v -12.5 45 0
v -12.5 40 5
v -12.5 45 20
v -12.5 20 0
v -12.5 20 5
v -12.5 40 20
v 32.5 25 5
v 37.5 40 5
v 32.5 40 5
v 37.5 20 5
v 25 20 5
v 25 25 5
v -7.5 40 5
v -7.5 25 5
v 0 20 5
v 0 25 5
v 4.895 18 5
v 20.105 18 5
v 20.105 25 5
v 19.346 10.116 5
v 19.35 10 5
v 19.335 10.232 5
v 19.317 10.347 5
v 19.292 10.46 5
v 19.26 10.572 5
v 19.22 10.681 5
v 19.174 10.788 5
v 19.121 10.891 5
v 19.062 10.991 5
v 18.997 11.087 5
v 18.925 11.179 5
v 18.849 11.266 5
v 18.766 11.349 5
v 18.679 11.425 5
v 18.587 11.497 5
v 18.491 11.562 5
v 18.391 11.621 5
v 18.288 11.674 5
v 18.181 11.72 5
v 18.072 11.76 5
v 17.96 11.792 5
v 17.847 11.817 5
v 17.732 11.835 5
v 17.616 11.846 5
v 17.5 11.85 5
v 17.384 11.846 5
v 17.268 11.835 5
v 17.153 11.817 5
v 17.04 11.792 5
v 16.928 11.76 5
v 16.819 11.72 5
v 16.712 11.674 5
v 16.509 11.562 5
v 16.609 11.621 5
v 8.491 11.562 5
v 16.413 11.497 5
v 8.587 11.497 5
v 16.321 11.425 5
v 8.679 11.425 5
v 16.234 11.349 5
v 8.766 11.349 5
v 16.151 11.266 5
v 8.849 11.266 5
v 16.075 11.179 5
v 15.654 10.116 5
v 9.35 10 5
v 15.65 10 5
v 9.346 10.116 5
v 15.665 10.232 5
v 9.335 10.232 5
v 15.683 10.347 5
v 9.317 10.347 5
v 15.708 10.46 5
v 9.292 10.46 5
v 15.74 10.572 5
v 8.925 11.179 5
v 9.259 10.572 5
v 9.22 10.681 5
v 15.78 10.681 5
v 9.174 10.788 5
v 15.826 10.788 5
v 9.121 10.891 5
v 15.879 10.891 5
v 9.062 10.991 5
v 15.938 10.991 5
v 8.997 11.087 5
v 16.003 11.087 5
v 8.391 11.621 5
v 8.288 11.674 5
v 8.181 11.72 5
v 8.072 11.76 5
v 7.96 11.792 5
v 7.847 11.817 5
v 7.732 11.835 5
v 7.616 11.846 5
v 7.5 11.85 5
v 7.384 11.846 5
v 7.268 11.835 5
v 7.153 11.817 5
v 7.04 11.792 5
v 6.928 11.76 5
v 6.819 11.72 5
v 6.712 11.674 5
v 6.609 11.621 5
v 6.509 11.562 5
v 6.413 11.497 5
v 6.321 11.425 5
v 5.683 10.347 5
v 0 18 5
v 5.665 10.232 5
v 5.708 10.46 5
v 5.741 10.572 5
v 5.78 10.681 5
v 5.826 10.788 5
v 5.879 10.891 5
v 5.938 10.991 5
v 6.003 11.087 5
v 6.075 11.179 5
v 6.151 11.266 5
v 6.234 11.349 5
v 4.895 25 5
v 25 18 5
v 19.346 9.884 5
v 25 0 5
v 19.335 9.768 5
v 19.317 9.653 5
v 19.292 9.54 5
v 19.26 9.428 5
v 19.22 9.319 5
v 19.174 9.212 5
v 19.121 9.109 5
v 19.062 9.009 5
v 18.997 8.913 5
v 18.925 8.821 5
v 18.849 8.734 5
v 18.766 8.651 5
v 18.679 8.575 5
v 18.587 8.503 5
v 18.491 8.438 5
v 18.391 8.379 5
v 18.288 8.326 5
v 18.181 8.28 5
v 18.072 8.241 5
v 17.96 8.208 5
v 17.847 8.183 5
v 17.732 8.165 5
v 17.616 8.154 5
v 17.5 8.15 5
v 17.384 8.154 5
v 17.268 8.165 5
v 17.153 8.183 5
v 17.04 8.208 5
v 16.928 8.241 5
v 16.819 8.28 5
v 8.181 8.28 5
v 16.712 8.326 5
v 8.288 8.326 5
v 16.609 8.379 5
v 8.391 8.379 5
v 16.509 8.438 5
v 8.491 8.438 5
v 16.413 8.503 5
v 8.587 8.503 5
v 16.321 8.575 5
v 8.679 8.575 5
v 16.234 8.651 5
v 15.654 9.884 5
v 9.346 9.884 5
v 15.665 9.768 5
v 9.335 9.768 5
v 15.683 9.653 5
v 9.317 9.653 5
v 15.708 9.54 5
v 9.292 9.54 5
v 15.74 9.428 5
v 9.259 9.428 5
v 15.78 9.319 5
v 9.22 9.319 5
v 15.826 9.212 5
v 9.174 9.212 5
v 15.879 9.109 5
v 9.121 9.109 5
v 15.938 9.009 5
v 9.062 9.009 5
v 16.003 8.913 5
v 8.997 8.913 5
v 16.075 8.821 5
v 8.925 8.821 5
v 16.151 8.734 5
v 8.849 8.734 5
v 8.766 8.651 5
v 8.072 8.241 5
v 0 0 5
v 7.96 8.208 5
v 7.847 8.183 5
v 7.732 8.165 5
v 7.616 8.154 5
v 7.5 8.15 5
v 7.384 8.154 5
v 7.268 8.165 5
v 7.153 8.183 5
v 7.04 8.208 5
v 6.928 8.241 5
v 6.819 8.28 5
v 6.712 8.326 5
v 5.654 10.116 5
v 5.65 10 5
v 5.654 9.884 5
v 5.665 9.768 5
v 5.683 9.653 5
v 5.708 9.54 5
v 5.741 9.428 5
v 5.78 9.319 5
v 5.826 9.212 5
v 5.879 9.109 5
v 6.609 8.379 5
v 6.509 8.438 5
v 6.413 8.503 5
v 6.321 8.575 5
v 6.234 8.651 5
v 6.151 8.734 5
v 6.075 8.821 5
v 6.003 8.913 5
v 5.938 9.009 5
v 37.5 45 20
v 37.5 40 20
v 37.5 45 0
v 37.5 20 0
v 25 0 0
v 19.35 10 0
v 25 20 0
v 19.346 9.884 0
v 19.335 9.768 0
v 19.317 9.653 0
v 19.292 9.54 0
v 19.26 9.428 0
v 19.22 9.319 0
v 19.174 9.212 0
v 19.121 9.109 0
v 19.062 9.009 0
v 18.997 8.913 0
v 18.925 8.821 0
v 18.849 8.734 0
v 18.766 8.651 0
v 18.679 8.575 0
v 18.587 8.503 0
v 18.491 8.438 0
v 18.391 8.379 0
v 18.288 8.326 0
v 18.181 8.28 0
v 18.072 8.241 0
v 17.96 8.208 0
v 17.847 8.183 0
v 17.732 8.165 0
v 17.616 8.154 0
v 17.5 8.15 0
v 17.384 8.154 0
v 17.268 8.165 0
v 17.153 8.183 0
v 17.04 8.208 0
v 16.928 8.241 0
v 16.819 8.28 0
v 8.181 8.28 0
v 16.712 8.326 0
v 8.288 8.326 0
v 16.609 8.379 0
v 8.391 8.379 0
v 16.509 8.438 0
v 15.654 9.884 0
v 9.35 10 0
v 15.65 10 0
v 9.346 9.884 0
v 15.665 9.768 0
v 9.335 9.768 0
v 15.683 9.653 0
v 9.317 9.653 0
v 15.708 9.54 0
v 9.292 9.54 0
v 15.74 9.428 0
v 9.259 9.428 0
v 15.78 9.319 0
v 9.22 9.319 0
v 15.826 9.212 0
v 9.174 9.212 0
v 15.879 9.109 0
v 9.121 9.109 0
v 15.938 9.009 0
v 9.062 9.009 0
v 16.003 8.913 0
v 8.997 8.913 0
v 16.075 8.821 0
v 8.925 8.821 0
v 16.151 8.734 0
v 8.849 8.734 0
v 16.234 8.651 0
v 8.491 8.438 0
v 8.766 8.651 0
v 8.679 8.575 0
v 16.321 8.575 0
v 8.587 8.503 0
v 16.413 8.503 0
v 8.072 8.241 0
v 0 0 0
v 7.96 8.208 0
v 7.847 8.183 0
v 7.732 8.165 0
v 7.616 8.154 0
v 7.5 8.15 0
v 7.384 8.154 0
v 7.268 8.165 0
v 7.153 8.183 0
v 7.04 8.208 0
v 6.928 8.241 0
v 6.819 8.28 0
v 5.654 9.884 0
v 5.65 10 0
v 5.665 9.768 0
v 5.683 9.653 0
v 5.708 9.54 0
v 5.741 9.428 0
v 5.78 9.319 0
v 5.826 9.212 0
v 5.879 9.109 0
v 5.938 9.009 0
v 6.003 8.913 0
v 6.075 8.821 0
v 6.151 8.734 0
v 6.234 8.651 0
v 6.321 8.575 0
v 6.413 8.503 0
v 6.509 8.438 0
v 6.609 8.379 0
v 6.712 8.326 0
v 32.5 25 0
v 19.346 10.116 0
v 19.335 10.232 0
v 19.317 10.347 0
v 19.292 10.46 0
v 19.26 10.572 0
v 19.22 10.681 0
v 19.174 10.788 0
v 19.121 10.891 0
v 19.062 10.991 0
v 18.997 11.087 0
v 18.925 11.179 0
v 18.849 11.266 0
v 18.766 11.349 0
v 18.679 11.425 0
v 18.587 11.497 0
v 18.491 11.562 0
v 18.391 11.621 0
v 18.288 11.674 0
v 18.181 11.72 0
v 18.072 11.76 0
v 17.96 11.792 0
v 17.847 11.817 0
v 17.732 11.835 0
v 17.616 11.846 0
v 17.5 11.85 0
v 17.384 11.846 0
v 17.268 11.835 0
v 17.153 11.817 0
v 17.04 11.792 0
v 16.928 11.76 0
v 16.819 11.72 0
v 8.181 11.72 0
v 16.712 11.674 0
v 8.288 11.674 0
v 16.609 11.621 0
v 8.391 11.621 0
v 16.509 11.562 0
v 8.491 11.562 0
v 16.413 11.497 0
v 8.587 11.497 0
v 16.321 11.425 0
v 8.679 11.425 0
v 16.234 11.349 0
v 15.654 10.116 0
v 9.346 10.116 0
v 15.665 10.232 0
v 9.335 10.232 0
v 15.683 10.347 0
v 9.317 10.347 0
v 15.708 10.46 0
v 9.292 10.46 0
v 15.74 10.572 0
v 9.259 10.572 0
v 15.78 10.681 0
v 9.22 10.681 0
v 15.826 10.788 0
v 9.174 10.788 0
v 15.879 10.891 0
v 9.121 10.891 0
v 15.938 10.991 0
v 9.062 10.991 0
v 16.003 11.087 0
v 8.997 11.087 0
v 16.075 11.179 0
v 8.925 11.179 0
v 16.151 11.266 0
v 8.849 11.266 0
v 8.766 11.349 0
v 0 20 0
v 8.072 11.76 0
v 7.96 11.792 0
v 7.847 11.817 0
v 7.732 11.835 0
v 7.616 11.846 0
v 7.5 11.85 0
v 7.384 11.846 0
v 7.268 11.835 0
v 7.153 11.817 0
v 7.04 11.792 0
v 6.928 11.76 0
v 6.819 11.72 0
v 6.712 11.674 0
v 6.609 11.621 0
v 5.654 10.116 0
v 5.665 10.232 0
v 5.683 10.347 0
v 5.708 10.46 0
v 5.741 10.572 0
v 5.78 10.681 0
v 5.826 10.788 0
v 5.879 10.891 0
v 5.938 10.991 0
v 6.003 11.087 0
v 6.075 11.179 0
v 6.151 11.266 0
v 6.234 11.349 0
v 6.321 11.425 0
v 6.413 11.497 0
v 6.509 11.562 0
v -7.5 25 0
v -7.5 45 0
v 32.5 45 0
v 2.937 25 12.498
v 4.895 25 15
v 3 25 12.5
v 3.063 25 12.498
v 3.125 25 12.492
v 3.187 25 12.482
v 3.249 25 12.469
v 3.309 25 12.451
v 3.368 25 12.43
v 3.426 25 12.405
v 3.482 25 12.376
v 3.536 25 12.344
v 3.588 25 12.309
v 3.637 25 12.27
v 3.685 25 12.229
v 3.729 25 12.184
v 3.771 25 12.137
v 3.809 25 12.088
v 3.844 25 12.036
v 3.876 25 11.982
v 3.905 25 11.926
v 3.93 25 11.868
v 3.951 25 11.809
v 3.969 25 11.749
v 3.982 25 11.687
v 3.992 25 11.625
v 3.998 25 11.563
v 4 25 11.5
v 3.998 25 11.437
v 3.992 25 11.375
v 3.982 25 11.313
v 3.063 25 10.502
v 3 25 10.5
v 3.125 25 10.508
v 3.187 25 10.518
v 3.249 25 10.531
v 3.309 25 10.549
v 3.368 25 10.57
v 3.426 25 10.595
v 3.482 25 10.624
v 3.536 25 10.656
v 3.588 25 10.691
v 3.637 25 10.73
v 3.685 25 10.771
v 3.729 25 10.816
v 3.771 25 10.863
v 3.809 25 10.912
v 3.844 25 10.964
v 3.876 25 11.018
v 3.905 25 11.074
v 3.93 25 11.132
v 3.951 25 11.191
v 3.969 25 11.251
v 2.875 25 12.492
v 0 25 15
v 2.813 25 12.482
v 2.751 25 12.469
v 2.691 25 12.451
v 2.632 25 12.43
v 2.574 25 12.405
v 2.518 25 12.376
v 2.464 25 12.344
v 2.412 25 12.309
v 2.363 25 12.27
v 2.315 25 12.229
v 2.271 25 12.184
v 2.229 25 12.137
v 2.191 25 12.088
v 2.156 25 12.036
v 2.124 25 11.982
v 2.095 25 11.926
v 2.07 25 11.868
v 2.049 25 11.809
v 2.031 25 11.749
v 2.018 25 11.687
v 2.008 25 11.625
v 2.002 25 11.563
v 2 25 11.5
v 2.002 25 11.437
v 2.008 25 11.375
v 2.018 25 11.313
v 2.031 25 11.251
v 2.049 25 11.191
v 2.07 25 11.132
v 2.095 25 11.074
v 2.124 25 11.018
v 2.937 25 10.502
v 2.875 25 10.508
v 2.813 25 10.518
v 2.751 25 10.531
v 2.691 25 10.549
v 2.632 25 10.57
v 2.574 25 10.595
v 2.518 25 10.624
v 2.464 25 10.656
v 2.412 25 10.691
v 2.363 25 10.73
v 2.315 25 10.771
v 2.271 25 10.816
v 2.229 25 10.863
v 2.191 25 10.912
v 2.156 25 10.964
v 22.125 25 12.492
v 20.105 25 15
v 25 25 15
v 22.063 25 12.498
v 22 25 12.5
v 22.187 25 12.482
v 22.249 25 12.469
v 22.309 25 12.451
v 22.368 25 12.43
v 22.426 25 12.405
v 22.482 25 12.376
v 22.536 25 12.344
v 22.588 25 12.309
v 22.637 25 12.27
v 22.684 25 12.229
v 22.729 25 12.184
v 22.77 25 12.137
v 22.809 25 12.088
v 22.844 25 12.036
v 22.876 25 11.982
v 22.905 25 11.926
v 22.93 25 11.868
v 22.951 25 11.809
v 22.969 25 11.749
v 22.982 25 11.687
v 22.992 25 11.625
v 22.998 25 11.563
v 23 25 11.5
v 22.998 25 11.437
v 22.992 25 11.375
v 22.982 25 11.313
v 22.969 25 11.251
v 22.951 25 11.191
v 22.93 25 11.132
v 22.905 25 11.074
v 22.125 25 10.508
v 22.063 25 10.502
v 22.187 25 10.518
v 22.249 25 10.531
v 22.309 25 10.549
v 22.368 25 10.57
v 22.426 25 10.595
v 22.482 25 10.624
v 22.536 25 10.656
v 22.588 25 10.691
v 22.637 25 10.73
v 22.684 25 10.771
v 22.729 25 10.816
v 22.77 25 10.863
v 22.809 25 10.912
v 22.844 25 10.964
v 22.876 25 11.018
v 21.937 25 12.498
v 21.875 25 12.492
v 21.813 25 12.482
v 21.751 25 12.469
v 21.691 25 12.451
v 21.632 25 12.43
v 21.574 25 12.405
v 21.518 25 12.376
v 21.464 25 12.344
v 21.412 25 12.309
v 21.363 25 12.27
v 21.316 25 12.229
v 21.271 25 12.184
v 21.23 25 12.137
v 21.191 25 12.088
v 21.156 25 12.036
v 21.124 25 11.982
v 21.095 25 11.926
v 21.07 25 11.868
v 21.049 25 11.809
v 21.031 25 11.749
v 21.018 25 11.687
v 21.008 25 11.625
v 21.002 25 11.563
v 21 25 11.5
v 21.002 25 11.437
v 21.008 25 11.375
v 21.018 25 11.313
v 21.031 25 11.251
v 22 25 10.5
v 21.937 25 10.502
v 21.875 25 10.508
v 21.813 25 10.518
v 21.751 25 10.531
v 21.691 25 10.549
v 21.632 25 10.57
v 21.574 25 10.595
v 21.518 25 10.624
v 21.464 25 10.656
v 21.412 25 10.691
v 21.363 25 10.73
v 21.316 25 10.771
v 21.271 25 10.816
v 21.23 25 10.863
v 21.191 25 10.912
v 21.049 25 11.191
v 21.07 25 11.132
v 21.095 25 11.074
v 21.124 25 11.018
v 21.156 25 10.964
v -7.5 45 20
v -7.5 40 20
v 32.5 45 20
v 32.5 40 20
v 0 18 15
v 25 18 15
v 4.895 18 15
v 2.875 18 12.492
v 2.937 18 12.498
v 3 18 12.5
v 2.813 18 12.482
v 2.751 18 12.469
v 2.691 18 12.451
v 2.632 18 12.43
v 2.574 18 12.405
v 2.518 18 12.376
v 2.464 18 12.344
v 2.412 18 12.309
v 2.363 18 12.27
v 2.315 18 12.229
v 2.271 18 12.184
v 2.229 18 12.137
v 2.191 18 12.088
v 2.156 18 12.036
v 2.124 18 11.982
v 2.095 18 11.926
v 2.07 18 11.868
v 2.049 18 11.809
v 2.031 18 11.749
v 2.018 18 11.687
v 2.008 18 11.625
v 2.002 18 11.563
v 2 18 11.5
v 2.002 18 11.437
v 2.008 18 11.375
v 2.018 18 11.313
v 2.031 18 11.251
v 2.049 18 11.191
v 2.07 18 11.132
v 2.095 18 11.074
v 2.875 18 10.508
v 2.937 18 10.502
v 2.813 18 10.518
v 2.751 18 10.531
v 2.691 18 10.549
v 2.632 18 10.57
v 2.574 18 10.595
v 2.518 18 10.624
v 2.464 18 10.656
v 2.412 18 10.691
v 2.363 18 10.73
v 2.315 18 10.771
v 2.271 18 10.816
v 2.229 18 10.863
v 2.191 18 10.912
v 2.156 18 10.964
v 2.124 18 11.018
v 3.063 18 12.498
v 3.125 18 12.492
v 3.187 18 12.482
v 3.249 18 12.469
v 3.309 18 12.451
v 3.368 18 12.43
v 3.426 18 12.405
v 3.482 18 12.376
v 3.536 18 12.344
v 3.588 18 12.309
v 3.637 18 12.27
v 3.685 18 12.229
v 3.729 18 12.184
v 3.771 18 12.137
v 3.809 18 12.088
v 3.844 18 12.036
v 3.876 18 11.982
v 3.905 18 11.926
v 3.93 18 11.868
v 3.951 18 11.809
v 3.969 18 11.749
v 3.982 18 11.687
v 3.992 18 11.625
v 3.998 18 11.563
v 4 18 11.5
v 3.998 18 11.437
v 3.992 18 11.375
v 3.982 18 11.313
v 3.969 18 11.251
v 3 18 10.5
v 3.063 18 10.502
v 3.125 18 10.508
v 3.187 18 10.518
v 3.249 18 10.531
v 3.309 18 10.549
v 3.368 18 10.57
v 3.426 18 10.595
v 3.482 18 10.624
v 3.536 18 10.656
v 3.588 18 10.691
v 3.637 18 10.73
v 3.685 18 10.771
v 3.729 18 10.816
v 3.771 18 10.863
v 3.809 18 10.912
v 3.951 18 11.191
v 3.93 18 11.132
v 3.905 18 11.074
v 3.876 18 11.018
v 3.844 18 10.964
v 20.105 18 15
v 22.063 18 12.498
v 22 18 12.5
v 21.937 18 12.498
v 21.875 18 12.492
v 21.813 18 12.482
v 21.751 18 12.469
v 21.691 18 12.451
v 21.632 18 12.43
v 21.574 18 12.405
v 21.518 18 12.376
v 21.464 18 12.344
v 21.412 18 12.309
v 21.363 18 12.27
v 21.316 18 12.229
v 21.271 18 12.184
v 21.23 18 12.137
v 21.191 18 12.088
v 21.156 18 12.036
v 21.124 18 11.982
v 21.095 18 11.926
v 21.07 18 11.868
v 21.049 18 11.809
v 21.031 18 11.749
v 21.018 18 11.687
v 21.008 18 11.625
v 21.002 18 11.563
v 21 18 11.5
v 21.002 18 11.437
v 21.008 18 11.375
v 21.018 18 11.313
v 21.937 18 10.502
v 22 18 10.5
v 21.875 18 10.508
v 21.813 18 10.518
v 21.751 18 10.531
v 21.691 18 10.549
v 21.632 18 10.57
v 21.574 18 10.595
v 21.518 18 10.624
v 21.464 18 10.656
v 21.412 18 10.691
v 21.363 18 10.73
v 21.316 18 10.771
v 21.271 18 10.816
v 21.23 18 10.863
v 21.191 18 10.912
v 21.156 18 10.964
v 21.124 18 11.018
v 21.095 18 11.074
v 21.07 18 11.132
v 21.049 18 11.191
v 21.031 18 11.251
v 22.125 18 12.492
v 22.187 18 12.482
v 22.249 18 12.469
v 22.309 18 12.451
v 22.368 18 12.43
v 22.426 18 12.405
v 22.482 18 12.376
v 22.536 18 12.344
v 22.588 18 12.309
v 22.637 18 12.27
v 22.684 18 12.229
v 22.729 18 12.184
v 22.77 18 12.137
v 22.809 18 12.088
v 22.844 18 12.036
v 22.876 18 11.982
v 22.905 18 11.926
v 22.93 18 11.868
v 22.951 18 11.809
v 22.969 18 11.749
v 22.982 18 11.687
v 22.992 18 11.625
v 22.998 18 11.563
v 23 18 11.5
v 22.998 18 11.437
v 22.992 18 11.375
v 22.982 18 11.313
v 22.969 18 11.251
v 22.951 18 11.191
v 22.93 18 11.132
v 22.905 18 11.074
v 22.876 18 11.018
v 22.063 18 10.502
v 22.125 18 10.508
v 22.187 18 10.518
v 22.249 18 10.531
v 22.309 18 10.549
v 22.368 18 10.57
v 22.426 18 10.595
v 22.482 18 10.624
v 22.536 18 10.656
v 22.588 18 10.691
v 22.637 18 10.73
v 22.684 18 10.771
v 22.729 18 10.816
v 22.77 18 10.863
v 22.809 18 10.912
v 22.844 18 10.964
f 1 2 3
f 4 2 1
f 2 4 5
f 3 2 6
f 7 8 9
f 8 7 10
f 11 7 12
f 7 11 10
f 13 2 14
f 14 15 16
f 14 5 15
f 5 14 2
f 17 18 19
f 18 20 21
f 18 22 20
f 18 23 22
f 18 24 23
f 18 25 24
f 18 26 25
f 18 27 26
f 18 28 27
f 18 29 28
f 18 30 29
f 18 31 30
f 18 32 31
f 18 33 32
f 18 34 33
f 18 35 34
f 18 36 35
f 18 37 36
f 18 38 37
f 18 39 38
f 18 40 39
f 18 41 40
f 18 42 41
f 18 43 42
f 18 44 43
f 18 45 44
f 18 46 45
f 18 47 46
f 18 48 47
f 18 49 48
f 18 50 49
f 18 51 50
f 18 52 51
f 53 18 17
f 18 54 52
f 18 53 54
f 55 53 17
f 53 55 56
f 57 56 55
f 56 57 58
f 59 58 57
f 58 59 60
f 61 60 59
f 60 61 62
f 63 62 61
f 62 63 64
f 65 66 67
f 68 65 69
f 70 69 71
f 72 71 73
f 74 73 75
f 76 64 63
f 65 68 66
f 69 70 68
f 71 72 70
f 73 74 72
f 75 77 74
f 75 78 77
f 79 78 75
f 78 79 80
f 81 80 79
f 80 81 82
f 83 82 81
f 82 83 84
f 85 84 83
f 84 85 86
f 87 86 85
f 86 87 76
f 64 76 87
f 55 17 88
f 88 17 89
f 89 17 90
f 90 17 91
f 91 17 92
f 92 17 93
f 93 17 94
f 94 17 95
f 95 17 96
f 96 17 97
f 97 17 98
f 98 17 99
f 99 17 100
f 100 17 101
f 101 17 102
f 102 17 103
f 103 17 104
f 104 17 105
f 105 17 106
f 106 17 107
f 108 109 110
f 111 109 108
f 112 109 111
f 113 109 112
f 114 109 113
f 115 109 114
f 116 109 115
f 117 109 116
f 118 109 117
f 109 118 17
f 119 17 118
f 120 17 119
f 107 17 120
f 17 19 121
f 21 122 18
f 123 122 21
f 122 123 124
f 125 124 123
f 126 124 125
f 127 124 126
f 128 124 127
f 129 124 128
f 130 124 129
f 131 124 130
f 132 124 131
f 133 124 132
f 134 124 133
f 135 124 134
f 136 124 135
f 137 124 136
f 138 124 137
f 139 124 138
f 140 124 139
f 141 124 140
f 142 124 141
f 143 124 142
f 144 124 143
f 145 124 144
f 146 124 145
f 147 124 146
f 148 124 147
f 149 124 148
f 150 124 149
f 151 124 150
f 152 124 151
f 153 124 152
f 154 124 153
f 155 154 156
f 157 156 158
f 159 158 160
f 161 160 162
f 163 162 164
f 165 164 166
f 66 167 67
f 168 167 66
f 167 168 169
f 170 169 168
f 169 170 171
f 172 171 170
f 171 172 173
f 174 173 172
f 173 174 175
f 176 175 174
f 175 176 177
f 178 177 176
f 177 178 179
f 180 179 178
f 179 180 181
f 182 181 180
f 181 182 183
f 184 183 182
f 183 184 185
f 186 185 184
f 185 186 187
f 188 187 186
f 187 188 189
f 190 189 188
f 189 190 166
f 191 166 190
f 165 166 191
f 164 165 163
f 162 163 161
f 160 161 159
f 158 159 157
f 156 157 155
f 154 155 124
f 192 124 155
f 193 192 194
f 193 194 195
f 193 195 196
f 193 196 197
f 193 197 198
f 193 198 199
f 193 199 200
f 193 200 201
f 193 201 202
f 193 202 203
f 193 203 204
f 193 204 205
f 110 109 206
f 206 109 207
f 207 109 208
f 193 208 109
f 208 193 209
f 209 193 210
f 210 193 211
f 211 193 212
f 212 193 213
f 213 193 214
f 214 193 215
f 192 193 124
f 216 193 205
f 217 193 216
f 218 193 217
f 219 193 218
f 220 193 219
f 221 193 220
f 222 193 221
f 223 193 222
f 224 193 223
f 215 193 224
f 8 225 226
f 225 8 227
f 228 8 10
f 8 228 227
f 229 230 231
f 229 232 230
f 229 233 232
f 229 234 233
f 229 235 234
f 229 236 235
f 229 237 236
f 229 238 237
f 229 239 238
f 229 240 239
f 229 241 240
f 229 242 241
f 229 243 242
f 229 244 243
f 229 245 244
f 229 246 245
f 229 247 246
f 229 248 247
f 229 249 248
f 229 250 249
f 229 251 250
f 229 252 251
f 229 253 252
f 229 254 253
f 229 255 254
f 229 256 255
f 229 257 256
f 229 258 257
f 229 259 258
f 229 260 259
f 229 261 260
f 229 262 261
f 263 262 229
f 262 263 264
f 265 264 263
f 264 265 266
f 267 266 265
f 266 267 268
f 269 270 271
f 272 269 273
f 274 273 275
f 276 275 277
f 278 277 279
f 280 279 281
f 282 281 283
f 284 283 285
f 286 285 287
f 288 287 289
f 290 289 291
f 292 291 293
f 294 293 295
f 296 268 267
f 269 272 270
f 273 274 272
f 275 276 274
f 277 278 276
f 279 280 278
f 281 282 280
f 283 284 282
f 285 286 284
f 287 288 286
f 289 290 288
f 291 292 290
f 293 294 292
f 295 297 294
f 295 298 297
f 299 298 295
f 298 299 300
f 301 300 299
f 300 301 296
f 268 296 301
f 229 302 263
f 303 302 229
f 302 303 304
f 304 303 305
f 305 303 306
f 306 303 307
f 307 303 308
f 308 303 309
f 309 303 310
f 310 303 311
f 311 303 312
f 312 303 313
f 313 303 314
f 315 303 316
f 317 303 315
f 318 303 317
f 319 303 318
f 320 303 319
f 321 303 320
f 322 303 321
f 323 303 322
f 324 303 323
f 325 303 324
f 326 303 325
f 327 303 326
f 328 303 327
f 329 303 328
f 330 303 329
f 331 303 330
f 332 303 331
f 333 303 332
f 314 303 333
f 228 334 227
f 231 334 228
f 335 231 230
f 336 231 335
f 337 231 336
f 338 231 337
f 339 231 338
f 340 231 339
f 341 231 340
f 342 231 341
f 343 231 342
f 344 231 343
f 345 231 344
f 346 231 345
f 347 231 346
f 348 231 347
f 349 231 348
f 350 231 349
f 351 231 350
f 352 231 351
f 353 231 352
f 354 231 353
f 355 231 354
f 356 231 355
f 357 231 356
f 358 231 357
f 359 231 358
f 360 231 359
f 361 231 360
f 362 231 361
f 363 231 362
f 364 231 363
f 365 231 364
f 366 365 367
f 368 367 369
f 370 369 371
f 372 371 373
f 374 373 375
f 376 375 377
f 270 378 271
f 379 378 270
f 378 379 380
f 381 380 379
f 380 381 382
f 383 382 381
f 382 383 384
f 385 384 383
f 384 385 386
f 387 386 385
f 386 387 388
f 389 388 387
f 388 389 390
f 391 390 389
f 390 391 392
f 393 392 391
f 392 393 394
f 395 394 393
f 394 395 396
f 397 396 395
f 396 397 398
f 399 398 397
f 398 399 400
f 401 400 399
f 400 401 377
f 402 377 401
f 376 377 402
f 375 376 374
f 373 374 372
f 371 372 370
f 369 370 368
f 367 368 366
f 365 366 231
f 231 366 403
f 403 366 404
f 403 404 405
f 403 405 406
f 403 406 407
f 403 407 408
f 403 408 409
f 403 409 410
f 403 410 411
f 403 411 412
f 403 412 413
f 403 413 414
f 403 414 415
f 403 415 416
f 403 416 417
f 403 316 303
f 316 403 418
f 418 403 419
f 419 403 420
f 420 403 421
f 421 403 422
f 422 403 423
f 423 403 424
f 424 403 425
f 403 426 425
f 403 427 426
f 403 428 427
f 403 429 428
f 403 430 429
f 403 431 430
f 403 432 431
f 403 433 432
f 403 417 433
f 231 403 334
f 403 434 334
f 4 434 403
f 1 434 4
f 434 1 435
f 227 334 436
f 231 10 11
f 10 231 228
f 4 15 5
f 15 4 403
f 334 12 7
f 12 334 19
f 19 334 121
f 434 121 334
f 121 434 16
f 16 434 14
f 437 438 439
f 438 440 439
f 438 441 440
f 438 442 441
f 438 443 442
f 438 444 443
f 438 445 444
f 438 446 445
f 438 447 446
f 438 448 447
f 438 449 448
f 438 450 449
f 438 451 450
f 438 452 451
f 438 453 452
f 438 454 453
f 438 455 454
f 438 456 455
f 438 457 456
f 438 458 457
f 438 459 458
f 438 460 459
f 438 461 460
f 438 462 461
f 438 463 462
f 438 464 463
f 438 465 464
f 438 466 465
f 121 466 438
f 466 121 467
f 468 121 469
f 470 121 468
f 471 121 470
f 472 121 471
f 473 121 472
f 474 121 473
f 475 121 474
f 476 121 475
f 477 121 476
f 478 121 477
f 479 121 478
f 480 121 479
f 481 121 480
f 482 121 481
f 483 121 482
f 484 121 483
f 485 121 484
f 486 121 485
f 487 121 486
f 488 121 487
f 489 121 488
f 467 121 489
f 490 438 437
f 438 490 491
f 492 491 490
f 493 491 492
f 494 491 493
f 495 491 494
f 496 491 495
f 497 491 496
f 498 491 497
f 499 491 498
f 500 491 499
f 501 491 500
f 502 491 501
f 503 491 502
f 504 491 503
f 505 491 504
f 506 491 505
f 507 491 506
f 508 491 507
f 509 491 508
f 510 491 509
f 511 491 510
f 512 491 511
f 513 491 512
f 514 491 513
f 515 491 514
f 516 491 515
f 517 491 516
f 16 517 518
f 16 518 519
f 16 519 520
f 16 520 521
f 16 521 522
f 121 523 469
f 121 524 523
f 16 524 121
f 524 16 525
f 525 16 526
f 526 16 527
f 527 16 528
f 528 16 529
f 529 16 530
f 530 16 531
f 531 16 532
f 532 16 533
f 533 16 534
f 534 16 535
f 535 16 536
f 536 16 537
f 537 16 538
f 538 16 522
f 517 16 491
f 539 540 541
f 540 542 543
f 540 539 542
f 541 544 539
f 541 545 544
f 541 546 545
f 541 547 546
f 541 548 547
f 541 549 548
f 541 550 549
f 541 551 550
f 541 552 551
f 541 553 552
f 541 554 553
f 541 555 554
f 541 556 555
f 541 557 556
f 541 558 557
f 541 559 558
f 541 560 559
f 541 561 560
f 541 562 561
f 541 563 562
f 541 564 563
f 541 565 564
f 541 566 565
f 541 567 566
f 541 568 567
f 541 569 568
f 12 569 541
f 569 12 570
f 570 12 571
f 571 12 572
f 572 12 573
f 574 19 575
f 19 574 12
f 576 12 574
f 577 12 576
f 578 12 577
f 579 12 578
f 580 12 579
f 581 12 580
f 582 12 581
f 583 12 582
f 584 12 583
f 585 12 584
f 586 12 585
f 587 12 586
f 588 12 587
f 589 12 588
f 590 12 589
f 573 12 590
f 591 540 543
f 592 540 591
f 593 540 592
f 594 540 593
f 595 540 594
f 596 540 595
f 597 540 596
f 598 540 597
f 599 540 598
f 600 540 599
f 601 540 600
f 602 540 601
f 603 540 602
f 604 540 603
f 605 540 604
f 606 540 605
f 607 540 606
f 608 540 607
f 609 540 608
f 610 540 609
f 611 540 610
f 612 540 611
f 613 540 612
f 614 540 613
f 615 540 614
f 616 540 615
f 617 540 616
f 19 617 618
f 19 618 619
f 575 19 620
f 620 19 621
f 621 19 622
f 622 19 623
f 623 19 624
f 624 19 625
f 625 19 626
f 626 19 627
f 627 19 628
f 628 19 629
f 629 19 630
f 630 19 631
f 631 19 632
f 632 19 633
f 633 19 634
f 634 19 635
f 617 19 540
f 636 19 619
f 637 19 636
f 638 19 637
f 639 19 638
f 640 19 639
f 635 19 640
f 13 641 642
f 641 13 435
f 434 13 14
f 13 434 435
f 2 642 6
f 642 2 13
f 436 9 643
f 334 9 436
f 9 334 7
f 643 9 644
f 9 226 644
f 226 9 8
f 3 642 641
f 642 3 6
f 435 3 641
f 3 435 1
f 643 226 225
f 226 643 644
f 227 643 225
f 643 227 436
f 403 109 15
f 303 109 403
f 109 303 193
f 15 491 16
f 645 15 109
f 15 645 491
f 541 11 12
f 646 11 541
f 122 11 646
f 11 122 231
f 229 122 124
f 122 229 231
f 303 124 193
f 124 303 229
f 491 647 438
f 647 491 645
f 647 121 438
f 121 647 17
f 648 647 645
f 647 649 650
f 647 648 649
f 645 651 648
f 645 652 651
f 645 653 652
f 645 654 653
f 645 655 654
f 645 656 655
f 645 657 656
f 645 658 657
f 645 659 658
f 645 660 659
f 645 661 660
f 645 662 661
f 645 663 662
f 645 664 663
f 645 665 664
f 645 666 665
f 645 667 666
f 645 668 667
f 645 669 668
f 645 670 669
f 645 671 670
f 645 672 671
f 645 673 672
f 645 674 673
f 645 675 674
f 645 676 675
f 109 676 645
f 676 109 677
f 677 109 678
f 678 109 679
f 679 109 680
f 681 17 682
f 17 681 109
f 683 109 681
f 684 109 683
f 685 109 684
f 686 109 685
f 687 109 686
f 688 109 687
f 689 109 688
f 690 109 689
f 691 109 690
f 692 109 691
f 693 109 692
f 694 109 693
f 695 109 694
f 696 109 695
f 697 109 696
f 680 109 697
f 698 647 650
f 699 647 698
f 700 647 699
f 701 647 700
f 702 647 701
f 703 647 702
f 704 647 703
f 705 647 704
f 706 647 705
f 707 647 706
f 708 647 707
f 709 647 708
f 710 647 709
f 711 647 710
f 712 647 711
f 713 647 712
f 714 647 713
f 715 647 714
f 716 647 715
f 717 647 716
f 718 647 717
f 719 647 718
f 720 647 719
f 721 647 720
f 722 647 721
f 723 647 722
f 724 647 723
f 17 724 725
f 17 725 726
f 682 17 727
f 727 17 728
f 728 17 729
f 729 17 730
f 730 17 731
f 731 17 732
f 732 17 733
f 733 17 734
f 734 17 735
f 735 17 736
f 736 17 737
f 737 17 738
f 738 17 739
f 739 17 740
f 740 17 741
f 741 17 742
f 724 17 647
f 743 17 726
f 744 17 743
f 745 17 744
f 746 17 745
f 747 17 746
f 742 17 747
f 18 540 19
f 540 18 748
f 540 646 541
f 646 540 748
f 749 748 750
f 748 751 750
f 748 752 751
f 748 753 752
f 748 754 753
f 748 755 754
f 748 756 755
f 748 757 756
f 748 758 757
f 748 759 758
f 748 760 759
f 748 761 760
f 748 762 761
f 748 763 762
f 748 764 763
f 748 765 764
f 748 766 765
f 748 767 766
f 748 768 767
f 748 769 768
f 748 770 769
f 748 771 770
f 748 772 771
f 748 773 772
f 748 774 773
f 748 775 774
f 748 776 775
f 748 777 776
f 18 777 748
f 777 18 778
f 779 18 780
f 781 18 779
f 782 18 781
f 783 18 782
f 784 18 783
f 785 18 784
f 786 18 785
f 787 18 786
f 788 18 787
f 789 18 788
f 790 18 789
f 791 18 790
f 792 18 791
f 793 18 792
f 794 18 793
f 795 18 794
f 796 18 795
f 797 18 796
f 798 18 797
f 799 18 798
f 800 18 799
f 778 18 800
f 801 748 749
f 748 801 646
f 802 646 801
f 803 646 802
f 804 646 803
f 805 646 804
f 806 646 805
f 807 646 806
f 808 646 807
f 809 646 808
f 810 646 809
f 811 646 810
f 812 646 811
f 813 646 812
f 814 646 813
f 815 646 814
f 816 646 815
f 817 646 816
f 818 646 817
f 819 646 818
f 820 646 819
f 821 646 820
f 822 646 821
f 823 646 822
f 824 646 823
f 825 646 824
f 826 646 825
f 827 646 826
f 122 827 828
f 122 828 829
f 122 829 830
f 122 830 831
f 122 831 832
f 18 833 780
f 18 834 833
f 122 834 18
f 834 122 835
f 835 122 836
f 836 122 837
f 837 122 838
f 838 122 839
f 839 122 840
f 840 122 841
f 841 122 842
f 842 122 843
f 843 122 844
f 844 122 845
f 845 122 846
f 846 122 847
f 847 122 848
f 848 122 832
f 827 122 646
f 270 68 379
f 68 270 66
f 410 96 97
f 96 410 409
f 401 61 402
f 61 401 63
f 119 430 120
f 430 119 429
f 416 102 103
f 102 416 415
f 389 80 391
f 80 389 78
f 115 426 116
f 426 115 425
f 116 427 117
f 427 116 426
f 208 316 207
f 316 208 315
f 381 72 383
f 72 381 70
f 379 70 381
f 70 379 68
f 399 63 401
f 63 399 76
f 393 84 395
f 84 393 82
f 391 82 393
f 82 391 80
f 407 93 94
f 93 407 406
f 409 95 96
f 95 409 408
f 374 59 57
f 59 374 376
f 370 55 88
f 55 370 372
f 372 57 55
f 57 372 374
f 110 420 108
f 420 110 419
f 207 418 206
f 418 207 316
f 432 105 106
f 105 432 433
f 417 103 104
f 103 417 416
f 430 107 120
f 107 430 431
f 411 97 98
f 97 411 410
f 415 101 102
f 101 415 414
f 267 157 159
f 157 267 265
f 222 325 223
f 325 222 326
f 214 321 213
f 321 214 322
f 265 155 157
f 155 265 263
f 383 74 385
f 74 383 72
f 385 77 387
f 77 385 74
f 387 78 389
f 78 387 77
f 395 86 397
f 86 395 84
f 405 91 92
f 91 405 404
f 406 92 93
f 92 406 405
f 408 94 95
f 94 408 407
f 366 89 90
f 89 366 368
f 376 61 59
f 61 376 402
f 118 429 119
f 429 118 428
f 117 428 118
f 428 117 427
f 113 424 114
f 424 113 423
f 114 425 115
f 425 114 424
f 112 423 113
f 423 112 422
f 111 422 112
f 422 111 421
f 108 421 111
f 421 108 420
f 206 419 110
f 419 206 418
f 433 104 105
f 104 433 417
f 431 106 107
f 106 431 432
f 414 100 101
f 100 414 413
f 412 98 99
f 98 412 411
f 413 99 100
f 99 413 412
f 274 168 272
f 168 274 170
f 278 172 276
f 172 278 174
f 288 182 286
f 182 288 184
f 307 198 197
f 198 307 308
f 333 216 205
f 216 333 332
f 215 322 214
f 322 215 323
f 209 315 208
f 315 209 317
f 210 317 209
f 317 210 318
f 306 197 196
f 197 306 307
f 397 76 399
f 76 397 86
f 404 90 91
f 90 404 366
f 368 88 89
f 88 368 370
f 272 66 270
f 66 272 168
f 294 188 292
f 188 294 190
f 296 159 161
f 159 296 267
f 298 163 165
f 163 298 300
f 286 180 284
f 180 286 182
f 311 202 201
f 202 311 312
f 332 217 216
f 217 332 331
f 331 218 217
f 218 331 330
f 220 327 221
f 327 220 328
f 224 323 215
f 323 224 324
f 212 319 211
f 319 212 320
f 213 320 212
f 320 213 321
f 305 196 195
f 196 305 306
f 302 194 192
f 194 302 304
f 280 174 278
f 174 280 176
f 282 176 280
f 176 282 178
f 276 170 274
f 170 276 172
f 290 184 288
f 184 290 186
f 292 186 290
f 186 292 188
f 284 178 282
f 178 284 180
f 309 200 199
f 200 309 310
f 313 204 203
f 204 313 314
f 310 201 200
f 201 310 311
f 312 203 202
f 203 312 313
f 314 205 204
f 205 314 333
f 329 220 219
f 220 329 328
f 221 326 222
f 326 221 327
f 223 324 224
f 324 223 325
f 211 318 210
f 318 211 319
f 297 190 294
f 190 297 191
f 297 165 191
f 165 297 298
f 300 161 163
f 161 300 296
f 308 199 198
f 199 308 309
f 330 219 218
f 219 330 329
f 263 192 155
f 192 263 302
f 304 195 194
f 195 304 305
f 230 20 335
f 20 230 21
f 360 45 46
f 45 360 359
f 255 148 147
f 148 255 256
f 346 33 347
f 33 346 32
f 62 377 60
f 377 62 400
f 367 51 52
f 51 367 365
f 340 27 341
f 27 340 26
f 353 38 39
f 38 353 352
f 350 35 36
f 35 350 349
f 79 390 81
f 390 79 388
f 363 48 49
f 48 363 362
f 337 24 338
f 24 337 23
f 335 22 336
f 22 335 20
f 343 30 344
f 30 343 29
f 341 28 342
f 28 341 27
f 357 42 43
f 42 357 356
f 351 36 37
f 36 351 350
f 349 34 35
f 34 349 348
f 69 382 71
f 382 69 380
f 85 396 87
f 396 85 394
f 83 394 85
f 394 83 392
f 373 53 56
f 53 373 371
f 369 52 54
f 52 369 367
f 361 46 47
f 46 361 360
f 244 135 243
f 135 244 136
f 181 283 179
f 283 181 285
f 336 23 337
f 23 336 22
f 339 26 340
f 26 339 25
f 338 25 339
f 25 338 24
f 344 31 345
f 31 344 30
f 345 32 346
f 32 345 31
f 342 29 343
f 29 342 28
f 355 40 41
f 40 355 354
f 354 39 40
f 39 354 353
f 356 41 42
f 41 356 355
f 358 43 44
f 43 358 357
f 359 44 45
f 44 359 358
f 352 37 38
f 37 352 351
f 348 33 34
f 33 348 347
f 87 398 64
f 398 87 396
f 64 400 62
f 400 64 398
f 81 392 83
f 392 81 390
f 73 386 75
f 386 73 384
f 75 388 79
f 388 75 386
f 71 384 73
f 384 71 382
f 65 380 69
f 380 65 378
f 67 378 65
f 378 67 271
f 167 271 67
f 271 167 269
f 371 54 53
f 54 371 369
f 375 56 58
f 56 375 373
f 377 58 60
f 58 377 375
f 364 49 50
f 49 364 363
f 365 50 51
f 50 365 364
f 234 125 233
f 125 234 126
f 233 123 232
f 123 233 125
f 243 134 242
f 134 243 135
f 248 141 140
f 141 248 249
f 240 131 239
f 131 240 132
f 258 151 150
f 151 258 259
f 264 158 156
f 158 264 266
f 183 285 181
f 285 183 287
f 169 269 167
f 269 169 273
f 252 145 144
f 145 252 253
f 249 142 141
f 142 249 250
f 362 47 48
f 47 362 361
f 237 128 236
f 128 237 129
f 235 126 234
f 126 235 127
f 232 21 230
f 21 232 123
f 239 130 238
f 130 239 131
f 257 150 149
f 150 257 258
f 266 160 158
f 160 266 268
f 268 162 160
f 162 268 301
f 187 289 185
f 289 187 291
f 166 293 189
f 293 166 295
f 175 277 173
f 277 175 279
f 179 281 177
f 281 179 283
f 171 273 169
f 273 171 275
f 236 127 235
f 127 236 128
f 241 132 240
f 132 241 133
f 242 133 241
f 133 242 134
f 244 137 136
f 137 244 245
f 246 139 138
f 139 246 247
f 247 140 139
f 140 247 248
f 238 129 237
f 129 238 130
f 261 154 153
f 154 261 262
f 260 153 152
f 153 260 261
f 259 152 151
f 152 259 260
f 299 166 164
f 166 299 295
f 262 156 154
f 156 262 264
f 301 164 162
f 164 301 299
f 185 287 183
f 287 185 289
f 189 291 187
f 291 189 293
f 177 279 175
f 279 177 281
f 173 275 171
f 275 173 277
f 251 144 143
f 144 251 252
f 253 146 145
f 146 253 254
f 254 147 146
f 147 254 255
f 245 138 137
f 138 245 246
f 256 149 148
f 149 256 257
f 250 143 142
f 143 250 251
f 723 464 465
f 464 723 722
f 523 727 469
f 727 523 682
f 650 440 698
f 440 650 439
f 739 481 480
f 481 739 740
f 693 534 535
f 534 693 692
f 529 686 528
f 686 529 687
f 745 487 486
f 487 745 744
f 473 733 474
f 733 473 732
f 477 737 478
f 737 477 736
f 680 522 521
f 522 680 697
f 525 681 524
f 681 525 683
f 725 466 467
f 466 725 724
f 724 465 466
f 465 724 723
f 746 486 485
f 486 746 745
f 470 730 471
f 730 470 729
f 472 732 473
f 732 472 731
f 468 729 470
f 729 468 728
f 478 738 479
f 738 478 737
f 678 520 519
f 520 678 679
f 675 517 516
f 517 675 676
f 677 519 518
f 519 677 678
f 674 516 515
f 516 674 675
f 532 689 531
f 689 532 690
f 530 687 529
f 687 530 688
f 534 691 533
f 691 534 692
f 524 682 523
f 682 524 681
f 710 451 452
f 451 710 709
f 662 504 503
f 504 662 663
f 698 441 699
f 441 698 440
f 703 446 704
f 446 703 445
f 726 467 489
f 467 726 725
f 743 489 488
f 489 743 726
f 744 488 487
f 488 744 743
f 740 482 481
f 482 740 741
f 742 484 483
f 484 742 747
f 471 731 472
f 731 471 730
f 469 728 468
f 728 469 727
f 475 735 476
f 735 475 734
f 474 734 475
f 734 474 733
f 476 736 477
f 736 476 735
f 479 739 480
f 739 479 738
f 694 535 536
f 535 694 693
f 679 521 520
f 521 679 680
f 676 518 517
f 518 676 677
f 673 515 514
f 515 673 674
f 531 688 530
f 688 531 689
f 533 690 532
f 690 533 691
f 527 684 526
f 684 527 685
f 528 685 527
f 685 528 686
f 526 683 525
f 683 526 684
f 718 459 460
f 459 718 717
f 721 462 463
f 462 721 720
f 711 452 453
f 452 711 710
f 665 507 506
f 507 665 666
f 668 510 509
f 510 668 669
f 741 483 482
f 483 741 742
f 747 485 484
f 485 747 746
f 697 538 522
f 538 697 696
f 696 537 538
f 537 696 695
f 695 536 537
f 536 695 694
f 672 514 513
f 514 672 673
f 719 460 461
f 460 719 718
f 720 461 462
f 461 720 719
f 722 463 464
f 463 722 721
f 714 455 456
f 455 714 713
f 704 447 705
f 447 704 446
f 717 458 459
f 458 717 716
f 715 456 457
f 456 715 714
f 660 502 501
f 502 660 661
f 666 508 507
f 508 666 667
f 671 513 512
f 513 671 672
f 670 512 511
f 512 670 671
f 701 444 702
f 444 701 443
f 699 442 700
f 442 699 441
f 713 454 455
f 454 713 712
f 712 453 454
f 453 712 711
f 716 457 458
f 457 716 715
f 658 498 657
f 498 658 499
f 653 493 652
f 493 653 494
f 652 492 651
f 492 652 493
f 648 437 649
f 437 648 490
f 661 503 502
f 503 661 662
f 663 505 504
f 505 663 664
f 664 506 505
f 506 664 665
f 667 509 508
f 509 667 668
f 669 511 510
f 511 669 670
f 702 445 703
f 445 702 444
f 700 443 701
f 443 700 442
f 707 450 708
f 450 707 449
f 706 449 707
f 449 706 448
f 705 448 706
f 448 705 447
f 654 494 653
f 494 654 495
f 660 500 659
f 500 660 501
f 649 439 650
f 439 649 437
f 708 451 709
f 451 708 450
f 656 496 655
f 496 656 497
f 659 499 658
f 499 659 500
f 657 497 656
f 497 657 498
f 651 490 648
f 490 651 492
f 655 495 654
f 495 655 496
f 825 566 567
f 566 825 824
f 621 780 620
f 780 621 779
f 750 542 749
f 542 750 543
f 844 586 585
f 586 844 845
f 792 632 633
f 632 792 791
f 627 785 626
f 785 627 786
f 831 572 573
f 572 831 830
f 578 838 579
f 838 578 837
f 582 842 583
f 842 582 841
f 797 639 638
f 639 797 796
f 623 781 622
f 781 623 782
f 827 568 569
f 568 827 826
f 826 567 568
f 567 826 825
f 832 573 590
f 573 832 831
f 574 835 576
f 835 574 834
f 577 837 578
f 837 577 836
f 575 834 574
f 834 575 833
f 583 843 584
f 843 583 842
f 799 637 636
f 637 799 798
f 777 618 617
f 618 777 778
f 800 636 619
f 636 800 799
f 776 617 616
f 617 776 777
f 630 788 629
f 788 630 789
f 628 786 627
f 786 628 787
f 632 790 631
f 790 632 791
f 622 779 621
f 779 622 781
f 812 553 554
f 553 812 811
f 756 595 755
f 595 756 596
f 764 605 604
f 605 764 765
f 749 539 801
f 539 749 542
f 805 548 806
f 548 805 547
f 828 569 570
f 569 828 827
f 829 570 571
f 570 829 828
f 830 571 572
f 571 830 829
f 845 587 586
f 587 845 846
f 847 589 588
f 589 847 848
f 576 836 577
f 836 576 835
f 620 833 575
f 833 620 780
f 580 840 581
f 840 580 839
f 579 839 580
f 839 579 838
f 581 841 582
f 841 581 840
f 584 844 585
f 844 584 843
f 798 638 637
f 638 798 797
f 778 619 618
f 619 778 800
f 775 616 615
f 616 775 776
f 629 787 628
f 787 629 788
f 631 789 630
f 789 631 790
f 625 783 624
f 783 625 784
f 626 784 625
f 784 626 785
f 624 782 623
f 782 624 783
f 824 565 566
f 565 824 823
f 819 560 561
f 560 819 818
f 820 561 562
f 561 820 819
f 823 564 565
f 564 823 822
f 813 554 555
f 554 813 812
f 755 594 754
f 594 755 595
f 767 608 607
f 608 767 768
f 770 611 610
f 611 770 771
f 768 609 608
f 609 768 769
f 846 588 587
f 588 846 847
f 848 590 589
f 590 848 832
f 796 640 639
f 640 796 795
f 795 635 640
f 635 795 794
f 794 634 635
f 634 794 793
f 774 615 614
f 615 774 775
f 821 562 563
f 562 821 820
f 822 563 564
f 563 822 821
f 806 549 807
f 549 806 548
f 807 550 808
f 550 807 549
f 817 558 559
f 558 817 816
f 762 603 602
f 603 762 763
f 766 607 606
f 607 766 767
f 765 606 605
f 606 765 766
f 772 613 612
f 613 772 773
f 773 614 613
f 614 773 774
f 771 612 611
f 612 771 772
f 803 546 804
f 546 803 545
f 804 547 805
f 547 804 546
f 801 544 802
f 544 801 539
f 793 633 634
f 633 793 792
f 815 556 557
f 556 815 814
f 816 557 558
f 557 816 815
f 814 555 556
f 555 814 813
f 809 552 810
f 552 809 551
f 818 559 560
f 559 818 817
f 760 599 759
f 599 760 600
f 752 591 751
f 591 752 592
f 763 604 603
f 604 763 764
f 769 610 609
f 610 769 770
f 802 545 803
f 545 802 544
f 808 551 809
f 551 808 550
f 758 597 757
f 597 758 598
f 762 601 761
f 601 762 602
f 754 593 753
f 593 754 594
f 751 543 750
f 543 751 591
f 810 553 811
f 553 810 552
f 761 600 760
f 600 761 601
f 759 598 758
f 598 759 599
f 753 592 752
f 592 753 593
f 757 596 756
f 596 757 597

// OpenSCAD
L=25;
eb=5;
W=20;
ea=5;
La=(L-15.21)/2;
lvis=19;
$fn=100;
Lbarre=50;
difference()
{
    union()
    {
    cube([L,W,eb]);
    translate([0,W-2,0])cube([La,2+ea,15]);
    translate([L-La,W-2,0]) cube([La,2+ea,15]);
    translate([-(Lbarre-L)/2,W,0]) 
        {
            cube([Lbarre,5,eb]);
            cube([5,20,eb]);
            translate([Lbarre-5,0,0]) cube([5,20,eb]);
            translate([0,20,0]) cube([5,5,20]);
            translate([Lbarre-5,20,0]) cube([5,5,20]);
        }
        
    }
     translate([L/2-5,W/2,-1])  cylinder(d=3.7,h=eb+10);
    translate([L/2+5,W/2,-1])  cylinder(d=3.7,h=eb+10);
    
    // vis capteur
    translate([(L-lvis)/2,-1,15-3.5]) rotate([-90,0,0]) cylinder(d=2,h=50);
    translate([L-(L-lvis)/2,-1,15-3.5]) rotate([-90,0,0]) cylinder(d=2,h=50);
//   translate([La/2,-1,15-3.5]) rotate([-90,0,0]) cylinder(d=7,h=4,$fn=6);
//    translate([L-La/2,-1,15-3.5]) rotate([-90,0,0]) cylinder(d=7,h=4,$fn=6);
}
